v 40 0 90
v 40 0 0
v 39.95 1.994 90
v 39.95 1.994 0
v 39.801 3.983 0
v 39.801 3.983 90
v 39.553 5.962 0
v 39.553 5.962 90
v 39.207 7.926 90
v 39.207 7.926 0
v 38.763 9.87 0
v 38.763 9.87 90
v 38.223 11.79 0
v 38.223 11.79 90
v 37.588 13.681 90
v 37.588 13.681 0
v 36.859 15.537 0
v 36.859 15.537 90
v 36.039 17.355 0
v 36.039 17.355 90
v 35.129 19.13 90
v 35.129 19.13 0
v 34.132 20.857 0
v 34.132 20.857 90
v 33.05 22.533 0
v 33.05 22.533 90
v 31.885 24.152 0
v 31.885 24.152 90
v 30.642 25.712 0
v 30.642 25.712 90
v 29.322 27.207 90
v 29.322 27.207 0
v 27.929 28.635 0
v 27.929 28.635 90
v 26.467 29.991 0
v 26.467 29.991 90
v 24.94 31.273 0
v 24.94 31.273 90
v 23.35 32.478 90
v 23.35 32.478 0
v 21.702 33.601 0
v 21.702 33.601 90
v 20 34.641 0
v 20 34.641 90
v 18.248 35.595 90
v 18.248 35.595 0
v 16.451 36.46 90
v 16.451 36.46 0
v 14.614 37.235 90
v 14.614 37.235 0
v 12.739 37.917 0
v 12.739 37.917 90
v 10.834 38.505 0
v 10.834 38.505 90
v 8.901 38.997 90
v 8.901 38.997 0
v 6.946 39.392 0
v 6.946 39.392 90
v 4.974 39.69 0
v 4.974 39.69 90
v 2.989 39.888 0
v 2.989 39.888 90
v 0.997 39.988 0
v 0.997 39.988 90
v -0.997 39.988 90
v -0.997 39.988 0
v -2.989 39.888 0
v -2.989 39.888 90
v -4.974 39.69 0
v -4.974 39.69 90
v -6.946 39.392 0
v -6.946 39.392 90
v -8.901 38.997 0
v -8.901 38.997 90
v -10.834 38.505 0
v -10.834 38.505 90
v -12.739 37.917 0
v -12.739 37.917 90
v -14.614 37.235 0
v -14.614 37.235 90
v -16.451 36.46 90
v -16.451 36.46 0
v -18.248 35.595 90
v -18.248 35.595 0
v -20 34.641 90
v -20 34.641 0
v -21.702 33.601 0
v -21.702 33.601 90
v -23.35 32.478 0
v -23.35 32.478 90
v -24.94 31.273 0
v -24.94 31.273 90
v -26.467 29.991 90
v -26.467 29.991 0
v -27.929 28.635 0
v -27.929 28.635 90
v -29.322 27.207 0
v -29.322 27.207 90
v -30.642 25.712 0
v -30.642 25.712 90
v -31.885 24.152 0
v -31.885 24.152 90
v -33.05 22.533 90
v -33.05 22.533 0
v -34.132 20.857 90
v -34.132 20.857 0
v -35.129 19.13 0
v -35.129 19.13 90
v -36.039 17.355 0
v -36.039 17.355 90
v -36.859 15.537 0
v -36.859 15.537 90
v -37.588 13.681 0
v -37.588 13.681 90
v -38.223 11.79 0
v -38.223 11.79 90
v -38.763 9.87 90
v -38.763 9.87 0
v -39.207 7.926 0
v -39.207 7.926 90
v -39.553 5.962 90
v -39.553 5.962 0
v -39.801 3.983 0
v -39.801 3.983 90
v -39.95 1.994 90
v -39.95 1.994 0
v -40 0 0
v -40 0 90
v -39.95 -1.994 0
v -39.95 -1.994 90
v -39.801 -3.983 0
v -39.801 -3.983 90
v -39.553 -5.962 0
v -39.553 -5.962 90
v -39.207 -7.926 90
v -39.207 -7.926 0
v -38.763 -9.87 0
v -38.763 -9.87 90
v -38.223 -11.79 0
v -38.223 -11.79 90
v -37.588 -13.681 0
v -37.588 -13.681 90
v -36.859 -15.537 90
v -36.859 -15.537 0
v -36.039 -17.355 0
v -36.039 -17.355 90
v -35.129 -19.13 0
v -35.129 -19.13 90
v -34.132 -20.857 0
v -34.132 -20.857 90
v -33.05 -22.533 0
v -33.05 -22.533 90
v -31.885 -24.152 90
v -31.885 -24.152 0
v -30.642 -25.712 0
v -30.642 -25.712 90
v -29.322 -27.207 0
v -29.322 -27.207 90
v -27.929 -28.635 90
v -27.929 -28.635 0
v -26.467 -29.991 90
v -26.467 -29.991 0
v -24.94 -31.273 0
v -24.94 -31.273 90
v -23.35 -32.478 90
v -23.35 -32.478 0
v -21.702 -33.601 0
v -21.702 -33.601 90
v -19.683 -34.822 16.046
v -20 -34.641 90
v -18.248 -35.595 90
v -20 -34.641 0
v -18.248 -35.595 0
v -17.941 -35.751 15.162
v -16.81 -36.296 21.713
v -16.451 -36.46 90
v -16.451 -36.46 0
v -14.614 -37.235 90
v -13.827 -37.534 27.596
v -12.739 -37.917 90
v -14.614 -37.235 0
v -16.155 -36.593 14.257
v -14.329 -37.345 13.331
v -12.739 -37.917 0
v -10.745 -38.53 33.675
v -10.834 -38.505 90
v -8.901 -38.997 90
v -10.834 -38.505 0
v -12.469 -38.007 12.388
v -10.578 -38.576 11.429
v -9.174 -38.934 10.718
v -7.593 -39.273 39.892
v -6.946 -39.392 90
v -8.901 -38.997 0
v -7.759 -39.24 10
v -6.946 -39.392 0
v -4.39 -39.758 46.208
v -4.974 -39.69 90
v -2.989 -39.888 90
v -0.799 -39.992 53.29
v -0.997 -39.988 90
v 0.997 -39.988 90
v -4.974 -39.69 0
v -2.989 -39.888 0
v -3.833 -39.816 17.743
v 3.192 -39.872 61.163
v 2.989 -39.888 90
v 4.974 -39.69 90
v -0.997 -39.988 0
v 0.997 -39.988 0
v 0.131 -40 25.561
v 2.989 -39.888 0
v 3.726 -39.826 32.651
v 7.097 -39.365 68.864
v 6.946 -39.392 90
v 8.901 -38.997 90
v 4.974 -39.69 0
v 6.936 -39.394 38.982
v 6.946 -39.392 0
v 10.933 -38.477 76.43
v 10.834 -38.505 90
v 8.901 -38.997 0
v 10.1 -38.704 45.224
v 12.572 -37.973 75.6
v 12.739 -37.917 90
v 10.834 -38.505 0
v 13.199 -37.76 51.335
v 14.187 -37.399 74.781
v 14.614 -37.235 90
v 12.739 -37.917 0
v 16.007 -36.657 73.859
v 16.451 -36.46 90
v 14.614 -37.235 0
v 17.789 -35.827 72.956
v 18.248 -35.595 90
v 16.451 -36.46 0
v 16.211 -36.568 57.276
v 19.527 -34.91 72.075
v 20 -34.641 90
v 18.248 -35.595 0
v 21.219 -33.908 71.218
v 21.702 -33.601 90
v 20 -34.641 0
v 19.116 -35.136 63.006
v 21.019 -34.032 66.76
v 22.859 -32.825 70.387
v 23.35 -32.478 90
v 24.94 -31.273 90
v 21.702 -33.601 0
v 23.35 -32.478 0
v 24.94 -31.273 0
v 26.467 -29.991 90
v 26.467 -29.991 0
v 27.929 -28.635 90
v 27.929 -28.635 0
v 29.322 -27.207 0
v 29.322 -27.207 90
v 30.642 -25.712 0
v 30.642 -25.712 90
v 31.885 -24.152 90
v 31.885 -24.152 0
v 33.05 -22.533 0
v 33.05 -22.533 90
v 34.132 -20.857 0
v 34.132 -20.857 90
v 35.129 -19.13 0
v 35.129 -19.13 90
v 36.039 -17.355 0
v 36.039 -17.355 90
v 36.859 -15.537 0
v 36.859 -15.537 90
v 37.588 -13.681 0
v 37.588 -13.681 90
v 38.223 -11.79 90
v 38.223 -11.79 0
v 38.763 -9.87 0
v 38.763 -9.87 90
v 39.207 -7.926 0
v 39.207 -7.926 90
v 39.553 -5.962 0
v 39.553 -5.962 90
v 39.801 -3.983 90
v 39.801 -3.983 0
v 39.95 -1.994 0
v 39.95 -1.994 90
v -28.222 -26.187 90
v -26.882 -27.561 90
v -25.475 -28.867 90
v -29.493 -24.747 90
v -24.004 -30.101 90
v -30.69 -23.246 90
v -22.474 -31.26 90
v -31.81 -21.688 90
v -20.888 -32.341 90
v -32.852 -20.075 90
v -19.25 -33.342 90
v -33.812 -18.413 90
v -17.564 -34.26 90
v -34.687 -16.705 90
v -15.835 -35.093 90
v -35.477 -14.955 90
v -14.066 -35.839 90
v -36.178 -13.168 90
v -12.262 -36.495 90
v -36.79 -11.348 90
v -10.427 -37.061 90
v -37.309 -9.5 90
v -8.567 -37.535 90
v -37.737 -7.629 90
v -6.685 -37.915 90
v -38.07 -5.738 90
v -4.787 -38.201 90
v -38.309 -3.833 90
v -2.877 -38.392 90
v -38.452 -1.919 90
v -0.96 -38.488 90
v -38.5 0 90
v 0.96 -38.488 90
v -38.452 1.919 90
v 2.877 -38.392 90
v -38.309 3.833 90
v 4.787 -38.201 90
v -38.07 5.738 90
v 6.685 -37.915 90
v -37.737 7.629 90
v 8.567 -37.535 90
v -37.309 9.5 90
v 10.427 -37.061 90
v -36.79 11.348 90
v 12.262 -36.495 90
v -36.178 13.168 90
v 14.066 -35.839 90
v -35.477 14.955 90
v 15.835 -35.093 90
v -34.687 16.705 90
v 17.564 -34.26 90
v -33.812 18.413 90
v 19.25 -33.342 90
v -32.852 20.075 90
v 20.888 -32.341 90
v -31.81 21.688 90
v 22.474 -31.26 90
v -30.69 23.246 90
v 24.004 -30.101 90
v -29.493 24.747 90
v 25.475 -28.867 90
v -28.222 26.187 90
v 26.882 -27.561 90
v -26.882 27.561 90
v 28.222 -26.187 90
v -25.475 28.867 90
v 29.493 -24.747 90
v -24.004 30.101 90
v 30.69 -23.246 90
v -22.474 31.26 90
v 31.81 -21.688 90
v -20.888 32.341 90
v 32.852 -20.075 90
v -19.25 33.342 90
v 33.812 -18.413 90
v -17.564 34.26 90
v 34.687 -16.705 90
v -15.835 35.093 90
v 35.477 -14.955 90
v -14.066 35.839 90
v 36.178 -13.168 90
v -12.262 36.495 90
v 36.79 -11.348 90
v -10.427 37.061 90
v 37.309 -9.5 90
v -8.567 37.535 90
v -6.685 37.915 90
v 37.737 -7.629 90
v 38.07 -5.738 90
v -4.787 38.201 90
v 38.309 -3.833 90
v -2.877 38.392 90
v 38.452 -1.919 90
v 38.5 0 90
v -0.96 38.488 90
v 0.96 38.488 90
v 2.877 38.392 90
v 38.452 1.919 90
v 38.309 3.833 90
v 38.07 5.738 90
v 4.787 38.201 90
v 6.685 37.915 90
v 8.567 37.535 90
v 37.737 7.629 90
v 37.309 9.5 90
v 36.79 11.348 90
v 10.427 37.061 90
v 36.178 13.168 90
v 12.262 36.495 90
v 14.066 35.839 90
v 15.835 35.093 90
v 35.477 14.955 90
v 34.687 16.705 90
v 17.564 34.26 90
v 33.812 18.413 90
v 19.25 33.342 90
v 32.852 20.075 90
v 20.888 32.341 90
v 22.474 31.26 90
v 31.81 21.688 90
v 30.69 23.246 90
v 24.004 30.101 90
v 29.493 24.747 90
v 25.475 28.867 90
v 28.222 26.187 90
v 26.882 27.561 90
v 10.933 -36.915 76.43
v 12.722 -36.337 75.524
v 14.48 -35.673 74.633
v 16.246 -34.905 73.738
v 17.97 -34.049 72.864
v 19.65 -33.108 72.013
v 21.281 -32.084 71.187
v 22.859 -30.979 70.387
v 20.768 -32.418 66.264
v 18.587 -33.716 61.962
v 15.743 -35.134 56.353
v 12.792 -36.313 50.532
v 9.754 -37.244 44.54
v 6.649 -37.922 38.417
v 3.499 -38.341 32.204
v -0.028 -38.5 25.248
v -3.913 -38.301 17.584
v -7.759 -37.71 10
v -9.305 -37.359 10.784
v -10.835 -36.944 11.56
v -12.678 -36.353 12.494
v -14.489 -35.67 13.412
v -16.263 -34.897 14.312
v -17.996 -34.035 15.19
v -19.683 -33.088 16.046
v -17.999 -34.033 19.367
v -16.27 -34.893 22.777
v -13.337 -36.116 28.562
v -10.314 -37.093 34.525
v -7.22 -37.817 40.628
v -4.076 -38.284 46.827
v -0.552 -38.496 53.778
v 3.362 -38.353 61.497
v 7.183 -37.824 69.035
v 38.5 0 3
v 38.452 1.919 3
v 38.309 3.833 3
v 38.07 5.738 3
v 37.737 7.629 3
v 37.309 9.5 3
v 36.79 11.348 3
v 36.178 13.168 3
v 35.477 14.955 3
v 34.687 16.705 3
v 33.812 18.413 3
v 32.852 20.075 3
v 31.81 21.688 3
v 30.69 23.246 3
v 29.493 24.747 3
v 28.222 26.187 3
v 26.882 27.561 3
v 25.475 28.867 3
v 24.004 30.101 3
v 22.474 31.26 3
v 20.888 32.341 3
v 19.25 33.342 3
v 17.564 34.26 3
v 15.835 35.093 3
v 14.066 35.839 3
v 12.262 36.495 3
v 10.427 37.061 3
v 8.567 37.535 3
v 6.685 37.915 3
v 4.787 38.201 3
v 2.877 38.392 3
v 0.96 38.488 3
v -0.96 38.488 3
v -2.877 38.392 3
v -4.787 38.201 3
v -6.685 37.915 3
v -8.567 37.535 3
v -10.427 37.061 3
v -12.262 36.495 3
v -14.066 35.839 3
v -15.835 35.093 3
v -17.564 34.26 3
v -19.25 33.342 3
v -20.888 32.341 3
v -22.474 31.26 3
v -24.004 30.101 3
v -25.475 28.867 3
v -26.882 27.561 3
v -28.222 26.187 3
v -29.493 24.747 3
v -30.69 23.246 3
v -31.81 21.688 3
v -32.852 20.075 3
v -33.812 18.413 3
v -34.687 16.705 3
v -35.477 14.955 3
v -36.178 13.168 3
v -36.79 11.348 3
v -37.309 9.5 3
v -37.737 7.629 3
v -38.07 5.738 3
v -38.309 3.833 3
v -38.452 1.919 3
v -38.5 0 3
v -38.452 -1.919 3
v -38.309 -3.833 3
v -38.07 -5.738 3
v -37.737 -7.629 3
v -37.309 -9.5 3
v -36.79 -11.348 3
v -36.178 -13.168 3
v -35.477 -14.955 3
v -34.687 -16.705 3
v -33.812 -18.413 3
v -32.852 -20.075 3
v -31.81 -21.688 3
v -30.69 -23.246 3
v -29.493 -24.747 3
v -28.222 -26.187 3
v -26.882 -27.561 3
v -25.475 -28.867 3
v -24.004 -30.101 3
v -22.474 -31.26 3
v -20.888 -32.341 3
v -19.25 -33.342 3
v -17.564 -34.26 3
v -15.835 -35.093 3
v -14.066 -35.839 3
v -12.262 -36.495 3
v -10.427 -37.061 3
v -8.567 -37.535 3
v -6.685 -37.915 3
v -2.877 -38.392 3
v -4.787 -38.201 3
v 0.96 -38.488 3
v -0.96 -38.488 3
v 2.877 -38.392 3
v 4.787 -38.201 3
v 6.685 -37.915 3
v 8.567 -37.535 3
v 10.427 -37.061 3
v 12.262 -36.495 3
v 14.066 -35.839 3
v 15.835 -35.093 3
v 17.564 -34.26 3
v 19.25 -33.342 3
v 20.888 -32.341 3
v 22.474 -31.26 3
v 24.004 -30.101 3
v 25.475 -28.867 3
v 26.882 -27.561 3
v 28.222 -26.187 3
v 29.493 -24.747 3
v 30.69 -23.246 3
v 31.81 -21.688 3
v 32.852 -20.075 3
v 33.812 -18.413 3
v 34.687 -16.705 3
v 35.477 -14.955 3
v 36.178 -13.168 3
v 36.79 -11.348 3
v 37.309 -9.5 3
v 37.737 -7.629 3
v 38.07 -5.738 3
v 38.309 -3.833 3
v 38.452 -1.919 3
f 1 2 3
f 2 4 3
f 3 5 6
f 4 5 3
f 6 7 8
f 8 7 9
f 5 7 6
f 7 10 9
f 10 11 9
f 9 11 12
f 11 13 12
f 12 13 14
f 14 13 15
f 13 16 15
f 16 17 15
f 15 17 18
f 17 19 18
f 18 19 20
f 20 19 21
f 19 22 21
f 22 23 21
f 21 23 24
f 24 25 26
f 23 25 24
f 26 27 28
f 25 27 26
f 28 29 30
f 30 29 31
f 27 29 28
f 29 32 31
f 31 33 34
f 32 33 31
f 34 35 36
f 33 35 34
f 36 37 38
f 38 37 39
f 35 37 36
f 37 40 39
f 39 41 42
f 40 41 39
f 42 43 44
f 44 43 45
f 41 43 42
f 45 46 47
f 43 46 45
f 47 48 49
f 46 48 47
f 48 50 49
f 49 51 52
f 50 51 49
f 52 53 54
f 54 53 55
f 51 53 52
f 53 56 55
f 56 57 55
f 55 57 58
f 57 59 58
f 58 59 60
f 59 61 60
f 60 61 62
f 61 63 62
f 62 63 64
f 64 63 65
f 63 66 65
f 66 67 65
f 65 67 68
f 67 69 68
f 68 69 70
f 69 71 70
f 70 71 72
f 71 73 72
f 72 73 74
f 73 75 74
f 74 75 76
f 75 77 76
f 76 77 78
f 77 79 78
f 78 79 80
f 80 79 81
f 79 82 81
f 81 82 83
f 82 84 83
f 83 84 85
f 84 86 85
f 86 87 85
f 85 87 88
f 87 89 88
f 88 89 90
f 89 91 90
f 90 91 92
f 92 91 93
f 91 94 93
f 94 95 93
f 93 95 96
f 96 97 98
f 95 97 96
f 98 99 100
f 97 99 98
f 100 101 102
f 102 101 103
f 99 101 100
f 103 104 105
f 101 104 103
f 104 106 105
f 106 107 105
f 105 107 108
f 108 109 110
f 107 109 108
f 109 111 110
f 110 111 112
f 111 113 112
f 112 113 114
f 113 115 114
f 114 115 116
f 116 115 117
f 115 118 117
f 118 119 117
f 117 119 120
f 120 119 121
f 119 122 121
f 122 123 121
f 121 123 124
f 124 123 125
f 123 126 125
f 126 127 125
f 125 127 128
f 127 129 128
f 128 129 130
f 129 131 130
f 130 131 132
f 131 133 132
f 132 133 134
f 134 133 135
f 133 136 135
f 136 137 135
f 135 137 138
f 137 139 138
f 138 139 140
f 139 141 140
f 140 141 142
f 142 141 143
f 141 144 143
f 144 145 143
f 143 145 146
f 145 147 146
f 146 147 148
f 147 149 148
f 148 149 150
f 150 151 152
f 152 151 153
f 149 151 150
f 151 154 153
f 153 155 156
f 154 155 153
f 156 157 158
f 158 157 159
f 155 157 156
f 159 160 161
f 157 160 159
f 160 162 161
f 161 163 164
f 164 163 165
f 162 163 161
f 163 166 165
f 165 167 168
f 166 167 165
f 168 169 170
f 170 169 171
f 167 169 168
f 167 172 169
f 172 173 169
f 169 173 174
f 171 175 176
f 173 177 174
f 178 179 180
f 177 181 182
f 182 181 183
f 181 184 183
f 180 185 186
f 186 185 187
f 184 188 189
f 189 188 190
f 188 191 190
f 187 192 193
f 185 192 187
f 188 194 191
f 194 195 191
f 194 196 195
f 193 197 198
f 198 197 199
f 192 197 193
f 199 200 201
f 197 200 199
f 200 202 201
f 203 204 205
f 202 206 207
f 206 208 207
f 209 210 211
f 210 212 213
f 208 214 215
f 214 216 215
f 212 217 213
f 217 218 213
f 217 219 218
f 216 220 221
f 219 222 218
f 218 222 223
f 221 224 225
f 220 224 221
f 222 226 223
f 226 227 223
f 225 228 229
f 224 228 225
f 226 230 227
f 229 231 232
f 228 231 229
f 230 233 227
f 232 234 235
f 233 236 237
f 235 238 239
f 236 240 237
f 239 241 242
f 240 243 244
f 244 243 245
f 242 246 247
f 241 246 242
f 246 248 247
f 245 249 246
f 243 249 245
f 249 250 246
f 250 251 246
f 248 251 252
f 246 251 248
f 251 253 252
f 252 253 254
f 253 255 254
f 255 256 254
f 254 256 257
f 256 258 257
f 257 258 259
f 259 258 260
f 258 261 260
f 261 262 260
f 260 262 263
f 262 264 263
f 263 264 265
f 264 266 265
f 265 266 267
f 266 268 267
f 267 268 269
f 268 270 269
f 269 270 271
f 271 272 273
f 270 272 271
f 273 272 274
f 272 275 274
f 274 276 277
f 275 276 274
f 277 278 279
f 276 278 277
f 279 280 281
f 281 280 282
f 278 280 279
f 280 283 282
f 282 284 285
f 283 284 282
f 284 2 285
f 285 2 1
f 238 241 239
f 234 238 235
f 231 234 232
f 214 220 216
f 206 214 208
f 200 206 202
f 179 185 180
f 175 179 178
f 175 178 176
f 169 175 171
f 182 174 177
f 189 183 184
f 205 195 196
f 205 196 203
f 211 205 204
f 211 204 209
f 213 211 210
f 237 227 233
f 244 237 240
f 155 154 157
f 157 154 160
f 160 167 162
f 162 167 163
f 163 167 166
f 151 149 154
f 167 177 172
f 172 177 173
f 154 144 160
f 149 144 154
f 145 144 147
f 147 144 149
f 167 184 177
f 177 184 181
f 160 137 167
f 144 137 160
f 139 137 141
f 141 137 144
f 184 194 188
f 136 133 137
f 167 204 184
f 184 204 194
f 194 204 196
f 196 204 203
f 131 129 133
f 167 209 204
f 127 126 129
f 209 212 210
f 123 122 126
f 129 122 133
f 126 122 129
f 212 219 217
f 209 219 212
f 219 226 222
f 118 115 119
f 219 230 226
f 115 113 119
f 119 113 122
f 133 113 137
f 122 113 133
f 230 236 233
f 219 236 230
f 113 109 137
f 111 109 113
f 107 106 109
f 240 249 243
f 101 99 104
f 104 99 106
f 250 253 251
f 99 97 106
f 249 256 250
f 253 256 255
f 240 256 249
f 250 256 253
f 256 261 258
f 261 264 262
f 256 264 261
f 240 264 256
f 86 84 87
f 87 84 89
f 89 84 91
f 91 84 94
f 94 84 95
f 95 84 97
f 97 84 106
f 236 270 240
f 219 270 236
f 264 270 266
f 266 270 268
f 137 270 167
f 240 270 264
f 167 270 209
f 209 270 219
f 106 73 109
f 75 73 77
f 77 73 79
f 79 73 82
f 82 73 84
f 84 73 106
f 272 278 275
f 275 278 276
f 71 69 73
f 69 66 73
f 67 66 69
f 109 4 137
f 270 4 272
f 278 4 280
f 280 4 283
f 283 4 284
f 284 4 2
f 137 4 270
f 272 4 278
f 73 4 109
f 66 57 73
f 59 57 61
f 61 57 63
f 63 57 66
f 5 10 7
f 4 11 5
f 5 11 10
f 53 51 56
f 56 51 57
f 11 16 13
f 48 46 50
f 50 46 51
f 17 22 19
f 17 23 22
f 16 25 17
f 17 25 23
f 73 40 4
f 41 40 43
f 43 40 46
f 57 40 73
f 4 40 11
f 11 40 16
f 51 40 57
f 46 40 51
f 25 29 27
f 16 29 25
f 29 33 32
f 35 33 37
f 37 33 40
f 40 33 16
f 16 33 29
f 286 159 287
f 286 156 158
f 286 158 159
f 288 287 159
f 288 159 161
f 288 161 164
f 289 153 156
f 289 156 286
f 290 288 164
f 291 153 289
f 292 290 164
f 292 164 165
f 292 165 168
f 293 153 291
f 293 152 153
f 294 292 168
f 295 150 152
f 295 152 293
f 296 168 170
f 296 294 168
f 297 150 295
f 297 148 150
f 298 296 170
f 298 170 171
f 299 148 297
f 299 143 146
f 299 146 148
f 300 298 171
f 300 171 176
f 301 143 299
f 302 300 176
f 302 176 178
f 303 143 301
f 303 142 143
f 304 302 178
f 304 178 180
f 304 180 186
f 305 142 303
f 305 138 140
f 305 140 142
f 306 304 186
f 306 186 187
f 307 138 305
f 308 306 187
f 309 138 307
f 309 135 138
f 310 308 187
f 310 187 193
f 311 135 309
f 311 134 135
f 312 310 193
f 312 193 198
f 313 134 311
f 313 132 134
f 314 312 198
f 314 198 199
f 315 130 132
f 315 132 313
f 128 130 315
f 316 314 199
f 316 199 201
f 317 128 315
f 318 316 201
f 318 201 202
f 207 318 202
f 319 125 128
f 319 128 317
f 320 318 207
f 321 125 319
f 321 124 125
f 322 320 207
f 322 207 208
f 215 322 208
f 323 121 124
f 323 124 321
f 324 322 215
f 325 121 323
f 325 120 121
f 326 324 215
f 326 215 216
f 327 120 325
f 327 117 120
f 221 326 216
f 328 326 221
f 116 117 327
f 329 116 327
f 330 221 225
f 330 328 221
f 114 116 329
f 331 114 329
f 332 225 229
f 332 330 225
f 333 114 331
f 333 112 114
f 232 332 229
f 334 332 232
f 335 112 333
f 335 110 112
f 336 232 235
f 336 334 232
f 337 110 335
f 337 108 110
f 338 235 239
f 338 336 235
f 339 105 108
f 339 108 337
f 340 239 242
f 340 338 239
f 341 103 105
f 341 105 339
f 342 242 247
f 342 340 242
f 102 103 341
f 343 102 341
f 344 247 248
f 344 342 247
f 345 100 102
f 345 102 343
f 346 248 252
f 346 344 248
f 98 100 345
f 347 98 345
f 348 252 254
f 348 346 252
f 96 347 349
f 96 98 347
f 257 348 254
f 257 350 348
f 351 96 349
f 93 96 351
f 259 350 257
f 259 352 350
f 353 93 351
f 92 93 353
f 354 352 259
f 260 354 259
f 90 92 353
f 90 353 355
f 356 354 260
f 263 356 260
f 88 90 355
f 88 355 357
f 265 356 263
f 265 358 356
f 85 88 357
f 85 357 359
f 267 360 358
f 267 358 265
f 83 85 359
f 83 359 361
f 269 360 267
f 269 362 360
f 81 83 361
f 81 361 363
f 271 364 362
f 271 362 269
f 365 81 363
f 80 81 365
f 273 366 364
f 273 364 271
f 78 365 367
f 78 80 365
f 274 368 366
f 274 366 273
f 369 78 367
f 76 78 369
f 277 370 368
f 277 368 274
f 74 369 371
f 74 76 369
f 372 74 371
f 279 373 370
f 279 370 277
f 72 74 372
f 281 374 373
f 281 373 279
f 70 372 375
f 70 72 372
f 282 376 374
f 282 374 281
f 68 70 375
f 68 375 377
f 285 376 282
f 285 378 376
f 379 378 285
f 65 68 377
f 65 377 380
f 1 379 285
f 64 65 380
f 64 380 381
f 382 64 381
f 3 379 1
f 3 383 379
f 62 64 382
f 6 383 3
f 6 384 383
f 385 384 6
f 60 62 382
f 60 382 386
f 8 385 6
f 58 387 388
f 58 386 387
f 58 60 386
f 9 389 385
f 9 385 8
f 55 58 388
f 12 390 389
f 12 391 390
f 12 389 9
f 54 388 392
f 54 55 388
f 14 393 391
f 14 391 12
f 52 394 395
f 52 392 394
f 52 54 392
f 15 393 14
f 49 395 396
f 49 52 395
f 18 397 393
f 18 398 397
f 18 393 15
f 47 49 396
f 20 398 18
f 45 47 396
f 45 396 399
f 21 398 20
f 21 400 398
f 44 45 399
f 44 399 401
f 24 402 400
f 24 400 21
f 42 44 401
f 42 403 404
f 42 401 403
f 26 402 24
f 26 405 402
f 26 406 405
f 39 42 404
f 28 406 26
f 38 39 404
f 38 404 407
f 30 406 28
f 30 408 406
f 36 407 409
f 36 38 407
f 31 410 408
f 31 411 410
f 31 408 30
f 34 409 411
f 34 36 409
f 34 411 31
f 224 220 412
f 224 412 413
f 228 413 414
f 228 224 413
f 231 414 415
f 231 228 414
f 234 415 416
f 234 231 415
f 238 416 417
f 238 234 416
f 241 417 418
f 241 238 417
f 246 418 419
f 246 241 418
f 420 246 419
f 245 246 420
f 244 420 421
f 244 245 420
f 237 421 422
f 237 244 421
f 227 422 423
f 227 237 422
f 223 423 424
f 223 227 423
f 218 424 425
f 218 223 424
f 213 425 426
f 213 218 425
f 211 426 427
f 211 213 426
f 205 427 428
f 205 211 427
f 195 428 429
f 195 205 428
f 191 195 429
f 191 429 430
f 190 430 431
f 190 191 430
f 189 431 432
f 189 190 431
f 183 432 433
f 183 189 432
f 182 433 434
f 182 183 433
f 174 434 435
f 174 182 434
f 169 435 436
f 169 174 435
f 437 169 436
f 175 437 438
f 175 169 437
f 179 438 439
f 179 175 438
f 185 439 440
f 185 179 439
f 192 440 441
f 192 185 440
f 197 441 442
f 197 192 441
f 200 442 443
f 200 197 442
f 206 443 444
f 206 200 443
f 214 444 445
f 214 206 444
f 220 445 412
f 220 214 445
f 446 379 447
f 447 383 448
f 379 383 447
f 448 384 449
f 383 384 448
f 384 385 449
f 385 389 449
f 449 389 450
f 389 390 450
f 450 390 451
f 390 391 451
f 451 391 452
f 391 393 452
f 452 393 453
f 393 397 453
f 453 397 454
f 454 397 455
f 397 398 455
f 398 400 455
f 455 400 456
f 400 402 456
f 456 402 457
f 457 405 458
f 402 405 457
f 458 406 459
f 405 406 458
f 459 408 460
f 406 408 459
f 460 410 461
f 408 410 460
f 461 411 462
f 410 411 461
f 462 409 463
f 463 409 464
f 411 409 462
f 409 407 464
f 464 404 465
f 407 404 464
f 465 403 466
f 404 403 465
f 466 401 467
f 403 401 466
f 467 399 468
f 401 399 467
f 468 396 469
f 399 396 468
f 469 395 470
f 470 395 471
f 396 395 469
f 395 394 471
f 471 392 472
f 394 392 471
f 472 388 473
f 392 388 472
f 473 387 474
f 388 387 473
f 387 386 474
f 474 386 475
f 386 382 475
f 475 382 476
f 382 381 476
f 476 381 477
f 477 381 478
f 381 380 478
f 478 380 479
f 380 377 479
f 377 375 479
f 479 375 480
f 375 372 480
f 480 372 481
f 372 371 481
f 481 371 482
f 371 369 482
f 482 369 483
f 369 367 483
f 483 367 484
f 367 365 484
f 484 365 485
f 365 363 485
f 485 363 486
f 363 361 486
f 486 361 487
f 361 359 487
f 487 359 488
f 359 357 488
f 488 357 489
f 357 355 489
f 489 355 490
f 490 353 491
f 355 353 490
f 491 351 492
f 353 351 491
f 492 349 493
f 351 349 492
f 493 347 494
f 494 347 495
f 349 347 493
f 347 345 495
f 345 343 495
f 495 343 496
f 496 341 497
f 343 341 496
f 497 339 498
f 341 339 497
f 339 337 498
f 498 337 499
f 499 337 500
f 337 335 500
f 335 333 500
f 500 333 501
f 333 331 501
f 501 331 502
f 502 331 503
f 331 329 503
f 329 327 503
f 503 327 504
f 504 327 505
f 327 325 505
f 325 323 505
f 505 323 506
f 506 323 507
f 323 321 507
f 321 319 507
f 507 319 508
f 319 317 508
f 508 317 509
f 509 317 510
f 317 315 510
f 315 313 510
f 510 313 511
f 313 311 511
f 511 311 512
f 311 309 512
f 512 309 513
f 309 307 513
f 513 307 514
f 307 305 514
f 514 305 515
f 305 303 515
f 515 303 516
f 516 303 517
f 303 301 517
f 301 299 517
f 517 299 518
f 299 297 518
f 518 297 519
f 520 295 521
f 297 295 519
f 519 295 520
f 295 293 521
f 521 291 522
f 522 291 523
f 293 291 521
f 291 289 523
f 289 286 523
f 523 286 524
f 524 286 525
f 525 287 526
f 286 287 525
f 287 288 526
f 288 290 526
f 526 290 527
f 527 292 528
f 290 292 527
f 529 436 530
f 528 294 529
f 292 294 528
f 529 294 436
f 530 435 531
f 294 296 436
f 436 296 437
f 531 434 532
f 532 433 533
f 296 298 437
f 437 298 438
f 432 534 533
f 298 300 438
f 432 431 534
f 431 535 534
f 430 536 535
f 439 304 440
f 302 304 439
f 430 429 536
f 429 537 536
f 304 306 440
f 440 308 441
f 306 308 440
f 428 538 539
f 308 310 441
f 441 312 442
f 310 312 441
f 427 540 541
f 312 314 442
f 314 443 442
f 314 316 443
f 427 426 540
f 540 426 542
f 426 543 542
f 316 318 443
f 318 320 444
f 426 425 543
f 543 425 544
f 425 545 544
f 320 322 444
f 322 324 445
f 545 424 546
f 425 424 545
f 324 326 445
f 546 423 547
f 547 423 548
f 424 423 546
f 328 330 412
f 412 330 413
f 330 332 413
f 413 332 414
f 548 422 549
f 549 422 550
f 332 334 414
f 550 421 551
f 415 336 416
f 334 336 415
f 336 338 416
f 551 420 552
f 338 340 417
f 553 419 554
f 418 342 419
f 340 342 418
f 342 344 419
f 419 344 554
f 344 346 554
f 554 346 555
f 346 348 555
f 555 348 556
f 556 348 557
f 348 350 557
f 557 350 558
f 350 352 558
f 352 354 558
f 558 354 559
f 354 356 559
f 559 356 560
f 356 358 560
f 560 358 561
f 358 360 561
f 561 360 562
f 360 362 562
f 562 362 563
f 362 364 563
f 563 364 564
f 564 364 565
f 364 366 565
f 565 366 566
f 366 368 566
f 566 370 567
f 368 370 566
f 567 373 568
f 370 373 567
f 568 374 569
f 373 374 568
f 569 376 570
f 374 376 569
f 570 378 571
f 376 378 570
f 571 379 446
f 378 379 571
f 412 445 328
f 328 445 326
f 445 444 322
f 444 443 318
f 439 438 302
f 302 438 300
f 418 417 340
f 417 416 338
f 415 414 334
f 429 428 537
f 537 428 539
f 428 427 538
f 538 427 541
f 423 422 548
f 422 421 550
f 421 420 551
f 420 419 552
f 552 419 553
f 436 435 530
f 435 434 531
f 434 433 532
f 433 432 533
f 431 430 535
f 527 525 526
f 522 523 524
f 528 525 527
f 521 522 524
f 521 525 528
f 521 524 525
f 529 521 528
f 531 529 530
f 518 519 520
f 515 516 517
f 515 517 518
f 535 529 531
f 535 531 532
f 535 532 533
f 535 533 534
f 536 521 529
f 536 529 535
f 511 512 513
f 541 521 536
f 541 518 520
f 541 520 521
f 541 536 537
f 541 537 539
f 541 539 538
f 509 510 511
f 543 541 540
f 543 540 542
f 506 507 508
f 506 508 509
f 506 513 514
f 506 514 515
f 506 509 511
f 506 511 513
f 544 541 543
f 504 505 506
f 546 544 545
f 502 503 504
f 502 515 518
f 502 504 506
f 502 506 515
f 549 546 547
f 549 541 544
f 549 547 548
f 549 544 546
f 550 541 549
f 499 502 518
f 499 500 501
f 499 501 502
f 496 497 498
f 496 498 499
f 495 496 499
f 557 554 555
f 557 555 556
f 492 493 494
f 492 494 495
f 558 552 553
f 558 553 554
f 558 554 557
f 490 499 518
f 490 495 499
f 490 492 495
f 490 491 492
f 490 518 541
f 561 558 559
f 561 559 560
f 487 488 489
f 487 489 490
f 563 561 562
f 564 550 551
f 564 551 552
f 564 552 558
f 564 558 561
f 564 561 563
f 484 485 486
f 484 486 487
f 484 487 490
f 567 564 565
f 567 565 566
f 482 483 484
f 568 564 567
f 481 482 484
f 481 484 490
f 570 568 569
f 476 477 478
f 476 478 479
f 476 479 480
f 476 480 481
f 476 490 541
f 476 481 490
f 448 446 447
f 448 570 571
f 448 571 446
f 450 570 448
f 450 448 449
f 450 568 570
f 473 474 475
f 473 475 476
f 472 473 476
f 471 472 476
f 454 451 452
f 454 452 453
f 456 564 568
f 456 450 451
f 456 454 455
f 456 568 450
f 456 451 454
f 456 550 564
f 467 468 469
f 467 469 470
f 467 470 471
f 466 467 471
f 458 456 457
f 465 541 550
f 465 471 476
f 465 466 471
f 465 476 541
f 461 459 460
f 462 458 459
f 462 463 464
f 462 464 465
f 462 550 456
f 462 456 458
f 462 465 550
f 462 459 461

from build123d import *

# Parameters (mm, degrees)
SKETCH_R        = 40
PAD_DEPTH       = 90
SKETCH001_R     = 38.5
POCKET_DEPTH    = 87
POCKET001_DEPTH = 50


with BuildPart() as part:
    # Sketch → Pad (new body)
    with BuildSketch(Plane.XY):
        Circle(SKETCH_R)
    extrude(amount=PAD_DEPTH)

    # Sketch001 (on Face3 of Pad) → Pocket (cut)
    with BuildSketch(Plane.XY.offset(90)):
        Circle(SKETCH001_R)
    extrude(amount=-POCKET_DEPTH, mode=Mode.SUBTRACT)

    # Sketch002 → Pocket001 (cut)
    with BuildSketch(Plane.XZ.offset(45)):
        Polygon((-19.683228, 16.045872), (10.932937, 76.430139), (22.858825, 70.387448), (-7.758954, 10), align=None)
    extrude(amount=-POCKET001_DEPTH, mode=Mode.SUBTRACT)


solid = part.part
